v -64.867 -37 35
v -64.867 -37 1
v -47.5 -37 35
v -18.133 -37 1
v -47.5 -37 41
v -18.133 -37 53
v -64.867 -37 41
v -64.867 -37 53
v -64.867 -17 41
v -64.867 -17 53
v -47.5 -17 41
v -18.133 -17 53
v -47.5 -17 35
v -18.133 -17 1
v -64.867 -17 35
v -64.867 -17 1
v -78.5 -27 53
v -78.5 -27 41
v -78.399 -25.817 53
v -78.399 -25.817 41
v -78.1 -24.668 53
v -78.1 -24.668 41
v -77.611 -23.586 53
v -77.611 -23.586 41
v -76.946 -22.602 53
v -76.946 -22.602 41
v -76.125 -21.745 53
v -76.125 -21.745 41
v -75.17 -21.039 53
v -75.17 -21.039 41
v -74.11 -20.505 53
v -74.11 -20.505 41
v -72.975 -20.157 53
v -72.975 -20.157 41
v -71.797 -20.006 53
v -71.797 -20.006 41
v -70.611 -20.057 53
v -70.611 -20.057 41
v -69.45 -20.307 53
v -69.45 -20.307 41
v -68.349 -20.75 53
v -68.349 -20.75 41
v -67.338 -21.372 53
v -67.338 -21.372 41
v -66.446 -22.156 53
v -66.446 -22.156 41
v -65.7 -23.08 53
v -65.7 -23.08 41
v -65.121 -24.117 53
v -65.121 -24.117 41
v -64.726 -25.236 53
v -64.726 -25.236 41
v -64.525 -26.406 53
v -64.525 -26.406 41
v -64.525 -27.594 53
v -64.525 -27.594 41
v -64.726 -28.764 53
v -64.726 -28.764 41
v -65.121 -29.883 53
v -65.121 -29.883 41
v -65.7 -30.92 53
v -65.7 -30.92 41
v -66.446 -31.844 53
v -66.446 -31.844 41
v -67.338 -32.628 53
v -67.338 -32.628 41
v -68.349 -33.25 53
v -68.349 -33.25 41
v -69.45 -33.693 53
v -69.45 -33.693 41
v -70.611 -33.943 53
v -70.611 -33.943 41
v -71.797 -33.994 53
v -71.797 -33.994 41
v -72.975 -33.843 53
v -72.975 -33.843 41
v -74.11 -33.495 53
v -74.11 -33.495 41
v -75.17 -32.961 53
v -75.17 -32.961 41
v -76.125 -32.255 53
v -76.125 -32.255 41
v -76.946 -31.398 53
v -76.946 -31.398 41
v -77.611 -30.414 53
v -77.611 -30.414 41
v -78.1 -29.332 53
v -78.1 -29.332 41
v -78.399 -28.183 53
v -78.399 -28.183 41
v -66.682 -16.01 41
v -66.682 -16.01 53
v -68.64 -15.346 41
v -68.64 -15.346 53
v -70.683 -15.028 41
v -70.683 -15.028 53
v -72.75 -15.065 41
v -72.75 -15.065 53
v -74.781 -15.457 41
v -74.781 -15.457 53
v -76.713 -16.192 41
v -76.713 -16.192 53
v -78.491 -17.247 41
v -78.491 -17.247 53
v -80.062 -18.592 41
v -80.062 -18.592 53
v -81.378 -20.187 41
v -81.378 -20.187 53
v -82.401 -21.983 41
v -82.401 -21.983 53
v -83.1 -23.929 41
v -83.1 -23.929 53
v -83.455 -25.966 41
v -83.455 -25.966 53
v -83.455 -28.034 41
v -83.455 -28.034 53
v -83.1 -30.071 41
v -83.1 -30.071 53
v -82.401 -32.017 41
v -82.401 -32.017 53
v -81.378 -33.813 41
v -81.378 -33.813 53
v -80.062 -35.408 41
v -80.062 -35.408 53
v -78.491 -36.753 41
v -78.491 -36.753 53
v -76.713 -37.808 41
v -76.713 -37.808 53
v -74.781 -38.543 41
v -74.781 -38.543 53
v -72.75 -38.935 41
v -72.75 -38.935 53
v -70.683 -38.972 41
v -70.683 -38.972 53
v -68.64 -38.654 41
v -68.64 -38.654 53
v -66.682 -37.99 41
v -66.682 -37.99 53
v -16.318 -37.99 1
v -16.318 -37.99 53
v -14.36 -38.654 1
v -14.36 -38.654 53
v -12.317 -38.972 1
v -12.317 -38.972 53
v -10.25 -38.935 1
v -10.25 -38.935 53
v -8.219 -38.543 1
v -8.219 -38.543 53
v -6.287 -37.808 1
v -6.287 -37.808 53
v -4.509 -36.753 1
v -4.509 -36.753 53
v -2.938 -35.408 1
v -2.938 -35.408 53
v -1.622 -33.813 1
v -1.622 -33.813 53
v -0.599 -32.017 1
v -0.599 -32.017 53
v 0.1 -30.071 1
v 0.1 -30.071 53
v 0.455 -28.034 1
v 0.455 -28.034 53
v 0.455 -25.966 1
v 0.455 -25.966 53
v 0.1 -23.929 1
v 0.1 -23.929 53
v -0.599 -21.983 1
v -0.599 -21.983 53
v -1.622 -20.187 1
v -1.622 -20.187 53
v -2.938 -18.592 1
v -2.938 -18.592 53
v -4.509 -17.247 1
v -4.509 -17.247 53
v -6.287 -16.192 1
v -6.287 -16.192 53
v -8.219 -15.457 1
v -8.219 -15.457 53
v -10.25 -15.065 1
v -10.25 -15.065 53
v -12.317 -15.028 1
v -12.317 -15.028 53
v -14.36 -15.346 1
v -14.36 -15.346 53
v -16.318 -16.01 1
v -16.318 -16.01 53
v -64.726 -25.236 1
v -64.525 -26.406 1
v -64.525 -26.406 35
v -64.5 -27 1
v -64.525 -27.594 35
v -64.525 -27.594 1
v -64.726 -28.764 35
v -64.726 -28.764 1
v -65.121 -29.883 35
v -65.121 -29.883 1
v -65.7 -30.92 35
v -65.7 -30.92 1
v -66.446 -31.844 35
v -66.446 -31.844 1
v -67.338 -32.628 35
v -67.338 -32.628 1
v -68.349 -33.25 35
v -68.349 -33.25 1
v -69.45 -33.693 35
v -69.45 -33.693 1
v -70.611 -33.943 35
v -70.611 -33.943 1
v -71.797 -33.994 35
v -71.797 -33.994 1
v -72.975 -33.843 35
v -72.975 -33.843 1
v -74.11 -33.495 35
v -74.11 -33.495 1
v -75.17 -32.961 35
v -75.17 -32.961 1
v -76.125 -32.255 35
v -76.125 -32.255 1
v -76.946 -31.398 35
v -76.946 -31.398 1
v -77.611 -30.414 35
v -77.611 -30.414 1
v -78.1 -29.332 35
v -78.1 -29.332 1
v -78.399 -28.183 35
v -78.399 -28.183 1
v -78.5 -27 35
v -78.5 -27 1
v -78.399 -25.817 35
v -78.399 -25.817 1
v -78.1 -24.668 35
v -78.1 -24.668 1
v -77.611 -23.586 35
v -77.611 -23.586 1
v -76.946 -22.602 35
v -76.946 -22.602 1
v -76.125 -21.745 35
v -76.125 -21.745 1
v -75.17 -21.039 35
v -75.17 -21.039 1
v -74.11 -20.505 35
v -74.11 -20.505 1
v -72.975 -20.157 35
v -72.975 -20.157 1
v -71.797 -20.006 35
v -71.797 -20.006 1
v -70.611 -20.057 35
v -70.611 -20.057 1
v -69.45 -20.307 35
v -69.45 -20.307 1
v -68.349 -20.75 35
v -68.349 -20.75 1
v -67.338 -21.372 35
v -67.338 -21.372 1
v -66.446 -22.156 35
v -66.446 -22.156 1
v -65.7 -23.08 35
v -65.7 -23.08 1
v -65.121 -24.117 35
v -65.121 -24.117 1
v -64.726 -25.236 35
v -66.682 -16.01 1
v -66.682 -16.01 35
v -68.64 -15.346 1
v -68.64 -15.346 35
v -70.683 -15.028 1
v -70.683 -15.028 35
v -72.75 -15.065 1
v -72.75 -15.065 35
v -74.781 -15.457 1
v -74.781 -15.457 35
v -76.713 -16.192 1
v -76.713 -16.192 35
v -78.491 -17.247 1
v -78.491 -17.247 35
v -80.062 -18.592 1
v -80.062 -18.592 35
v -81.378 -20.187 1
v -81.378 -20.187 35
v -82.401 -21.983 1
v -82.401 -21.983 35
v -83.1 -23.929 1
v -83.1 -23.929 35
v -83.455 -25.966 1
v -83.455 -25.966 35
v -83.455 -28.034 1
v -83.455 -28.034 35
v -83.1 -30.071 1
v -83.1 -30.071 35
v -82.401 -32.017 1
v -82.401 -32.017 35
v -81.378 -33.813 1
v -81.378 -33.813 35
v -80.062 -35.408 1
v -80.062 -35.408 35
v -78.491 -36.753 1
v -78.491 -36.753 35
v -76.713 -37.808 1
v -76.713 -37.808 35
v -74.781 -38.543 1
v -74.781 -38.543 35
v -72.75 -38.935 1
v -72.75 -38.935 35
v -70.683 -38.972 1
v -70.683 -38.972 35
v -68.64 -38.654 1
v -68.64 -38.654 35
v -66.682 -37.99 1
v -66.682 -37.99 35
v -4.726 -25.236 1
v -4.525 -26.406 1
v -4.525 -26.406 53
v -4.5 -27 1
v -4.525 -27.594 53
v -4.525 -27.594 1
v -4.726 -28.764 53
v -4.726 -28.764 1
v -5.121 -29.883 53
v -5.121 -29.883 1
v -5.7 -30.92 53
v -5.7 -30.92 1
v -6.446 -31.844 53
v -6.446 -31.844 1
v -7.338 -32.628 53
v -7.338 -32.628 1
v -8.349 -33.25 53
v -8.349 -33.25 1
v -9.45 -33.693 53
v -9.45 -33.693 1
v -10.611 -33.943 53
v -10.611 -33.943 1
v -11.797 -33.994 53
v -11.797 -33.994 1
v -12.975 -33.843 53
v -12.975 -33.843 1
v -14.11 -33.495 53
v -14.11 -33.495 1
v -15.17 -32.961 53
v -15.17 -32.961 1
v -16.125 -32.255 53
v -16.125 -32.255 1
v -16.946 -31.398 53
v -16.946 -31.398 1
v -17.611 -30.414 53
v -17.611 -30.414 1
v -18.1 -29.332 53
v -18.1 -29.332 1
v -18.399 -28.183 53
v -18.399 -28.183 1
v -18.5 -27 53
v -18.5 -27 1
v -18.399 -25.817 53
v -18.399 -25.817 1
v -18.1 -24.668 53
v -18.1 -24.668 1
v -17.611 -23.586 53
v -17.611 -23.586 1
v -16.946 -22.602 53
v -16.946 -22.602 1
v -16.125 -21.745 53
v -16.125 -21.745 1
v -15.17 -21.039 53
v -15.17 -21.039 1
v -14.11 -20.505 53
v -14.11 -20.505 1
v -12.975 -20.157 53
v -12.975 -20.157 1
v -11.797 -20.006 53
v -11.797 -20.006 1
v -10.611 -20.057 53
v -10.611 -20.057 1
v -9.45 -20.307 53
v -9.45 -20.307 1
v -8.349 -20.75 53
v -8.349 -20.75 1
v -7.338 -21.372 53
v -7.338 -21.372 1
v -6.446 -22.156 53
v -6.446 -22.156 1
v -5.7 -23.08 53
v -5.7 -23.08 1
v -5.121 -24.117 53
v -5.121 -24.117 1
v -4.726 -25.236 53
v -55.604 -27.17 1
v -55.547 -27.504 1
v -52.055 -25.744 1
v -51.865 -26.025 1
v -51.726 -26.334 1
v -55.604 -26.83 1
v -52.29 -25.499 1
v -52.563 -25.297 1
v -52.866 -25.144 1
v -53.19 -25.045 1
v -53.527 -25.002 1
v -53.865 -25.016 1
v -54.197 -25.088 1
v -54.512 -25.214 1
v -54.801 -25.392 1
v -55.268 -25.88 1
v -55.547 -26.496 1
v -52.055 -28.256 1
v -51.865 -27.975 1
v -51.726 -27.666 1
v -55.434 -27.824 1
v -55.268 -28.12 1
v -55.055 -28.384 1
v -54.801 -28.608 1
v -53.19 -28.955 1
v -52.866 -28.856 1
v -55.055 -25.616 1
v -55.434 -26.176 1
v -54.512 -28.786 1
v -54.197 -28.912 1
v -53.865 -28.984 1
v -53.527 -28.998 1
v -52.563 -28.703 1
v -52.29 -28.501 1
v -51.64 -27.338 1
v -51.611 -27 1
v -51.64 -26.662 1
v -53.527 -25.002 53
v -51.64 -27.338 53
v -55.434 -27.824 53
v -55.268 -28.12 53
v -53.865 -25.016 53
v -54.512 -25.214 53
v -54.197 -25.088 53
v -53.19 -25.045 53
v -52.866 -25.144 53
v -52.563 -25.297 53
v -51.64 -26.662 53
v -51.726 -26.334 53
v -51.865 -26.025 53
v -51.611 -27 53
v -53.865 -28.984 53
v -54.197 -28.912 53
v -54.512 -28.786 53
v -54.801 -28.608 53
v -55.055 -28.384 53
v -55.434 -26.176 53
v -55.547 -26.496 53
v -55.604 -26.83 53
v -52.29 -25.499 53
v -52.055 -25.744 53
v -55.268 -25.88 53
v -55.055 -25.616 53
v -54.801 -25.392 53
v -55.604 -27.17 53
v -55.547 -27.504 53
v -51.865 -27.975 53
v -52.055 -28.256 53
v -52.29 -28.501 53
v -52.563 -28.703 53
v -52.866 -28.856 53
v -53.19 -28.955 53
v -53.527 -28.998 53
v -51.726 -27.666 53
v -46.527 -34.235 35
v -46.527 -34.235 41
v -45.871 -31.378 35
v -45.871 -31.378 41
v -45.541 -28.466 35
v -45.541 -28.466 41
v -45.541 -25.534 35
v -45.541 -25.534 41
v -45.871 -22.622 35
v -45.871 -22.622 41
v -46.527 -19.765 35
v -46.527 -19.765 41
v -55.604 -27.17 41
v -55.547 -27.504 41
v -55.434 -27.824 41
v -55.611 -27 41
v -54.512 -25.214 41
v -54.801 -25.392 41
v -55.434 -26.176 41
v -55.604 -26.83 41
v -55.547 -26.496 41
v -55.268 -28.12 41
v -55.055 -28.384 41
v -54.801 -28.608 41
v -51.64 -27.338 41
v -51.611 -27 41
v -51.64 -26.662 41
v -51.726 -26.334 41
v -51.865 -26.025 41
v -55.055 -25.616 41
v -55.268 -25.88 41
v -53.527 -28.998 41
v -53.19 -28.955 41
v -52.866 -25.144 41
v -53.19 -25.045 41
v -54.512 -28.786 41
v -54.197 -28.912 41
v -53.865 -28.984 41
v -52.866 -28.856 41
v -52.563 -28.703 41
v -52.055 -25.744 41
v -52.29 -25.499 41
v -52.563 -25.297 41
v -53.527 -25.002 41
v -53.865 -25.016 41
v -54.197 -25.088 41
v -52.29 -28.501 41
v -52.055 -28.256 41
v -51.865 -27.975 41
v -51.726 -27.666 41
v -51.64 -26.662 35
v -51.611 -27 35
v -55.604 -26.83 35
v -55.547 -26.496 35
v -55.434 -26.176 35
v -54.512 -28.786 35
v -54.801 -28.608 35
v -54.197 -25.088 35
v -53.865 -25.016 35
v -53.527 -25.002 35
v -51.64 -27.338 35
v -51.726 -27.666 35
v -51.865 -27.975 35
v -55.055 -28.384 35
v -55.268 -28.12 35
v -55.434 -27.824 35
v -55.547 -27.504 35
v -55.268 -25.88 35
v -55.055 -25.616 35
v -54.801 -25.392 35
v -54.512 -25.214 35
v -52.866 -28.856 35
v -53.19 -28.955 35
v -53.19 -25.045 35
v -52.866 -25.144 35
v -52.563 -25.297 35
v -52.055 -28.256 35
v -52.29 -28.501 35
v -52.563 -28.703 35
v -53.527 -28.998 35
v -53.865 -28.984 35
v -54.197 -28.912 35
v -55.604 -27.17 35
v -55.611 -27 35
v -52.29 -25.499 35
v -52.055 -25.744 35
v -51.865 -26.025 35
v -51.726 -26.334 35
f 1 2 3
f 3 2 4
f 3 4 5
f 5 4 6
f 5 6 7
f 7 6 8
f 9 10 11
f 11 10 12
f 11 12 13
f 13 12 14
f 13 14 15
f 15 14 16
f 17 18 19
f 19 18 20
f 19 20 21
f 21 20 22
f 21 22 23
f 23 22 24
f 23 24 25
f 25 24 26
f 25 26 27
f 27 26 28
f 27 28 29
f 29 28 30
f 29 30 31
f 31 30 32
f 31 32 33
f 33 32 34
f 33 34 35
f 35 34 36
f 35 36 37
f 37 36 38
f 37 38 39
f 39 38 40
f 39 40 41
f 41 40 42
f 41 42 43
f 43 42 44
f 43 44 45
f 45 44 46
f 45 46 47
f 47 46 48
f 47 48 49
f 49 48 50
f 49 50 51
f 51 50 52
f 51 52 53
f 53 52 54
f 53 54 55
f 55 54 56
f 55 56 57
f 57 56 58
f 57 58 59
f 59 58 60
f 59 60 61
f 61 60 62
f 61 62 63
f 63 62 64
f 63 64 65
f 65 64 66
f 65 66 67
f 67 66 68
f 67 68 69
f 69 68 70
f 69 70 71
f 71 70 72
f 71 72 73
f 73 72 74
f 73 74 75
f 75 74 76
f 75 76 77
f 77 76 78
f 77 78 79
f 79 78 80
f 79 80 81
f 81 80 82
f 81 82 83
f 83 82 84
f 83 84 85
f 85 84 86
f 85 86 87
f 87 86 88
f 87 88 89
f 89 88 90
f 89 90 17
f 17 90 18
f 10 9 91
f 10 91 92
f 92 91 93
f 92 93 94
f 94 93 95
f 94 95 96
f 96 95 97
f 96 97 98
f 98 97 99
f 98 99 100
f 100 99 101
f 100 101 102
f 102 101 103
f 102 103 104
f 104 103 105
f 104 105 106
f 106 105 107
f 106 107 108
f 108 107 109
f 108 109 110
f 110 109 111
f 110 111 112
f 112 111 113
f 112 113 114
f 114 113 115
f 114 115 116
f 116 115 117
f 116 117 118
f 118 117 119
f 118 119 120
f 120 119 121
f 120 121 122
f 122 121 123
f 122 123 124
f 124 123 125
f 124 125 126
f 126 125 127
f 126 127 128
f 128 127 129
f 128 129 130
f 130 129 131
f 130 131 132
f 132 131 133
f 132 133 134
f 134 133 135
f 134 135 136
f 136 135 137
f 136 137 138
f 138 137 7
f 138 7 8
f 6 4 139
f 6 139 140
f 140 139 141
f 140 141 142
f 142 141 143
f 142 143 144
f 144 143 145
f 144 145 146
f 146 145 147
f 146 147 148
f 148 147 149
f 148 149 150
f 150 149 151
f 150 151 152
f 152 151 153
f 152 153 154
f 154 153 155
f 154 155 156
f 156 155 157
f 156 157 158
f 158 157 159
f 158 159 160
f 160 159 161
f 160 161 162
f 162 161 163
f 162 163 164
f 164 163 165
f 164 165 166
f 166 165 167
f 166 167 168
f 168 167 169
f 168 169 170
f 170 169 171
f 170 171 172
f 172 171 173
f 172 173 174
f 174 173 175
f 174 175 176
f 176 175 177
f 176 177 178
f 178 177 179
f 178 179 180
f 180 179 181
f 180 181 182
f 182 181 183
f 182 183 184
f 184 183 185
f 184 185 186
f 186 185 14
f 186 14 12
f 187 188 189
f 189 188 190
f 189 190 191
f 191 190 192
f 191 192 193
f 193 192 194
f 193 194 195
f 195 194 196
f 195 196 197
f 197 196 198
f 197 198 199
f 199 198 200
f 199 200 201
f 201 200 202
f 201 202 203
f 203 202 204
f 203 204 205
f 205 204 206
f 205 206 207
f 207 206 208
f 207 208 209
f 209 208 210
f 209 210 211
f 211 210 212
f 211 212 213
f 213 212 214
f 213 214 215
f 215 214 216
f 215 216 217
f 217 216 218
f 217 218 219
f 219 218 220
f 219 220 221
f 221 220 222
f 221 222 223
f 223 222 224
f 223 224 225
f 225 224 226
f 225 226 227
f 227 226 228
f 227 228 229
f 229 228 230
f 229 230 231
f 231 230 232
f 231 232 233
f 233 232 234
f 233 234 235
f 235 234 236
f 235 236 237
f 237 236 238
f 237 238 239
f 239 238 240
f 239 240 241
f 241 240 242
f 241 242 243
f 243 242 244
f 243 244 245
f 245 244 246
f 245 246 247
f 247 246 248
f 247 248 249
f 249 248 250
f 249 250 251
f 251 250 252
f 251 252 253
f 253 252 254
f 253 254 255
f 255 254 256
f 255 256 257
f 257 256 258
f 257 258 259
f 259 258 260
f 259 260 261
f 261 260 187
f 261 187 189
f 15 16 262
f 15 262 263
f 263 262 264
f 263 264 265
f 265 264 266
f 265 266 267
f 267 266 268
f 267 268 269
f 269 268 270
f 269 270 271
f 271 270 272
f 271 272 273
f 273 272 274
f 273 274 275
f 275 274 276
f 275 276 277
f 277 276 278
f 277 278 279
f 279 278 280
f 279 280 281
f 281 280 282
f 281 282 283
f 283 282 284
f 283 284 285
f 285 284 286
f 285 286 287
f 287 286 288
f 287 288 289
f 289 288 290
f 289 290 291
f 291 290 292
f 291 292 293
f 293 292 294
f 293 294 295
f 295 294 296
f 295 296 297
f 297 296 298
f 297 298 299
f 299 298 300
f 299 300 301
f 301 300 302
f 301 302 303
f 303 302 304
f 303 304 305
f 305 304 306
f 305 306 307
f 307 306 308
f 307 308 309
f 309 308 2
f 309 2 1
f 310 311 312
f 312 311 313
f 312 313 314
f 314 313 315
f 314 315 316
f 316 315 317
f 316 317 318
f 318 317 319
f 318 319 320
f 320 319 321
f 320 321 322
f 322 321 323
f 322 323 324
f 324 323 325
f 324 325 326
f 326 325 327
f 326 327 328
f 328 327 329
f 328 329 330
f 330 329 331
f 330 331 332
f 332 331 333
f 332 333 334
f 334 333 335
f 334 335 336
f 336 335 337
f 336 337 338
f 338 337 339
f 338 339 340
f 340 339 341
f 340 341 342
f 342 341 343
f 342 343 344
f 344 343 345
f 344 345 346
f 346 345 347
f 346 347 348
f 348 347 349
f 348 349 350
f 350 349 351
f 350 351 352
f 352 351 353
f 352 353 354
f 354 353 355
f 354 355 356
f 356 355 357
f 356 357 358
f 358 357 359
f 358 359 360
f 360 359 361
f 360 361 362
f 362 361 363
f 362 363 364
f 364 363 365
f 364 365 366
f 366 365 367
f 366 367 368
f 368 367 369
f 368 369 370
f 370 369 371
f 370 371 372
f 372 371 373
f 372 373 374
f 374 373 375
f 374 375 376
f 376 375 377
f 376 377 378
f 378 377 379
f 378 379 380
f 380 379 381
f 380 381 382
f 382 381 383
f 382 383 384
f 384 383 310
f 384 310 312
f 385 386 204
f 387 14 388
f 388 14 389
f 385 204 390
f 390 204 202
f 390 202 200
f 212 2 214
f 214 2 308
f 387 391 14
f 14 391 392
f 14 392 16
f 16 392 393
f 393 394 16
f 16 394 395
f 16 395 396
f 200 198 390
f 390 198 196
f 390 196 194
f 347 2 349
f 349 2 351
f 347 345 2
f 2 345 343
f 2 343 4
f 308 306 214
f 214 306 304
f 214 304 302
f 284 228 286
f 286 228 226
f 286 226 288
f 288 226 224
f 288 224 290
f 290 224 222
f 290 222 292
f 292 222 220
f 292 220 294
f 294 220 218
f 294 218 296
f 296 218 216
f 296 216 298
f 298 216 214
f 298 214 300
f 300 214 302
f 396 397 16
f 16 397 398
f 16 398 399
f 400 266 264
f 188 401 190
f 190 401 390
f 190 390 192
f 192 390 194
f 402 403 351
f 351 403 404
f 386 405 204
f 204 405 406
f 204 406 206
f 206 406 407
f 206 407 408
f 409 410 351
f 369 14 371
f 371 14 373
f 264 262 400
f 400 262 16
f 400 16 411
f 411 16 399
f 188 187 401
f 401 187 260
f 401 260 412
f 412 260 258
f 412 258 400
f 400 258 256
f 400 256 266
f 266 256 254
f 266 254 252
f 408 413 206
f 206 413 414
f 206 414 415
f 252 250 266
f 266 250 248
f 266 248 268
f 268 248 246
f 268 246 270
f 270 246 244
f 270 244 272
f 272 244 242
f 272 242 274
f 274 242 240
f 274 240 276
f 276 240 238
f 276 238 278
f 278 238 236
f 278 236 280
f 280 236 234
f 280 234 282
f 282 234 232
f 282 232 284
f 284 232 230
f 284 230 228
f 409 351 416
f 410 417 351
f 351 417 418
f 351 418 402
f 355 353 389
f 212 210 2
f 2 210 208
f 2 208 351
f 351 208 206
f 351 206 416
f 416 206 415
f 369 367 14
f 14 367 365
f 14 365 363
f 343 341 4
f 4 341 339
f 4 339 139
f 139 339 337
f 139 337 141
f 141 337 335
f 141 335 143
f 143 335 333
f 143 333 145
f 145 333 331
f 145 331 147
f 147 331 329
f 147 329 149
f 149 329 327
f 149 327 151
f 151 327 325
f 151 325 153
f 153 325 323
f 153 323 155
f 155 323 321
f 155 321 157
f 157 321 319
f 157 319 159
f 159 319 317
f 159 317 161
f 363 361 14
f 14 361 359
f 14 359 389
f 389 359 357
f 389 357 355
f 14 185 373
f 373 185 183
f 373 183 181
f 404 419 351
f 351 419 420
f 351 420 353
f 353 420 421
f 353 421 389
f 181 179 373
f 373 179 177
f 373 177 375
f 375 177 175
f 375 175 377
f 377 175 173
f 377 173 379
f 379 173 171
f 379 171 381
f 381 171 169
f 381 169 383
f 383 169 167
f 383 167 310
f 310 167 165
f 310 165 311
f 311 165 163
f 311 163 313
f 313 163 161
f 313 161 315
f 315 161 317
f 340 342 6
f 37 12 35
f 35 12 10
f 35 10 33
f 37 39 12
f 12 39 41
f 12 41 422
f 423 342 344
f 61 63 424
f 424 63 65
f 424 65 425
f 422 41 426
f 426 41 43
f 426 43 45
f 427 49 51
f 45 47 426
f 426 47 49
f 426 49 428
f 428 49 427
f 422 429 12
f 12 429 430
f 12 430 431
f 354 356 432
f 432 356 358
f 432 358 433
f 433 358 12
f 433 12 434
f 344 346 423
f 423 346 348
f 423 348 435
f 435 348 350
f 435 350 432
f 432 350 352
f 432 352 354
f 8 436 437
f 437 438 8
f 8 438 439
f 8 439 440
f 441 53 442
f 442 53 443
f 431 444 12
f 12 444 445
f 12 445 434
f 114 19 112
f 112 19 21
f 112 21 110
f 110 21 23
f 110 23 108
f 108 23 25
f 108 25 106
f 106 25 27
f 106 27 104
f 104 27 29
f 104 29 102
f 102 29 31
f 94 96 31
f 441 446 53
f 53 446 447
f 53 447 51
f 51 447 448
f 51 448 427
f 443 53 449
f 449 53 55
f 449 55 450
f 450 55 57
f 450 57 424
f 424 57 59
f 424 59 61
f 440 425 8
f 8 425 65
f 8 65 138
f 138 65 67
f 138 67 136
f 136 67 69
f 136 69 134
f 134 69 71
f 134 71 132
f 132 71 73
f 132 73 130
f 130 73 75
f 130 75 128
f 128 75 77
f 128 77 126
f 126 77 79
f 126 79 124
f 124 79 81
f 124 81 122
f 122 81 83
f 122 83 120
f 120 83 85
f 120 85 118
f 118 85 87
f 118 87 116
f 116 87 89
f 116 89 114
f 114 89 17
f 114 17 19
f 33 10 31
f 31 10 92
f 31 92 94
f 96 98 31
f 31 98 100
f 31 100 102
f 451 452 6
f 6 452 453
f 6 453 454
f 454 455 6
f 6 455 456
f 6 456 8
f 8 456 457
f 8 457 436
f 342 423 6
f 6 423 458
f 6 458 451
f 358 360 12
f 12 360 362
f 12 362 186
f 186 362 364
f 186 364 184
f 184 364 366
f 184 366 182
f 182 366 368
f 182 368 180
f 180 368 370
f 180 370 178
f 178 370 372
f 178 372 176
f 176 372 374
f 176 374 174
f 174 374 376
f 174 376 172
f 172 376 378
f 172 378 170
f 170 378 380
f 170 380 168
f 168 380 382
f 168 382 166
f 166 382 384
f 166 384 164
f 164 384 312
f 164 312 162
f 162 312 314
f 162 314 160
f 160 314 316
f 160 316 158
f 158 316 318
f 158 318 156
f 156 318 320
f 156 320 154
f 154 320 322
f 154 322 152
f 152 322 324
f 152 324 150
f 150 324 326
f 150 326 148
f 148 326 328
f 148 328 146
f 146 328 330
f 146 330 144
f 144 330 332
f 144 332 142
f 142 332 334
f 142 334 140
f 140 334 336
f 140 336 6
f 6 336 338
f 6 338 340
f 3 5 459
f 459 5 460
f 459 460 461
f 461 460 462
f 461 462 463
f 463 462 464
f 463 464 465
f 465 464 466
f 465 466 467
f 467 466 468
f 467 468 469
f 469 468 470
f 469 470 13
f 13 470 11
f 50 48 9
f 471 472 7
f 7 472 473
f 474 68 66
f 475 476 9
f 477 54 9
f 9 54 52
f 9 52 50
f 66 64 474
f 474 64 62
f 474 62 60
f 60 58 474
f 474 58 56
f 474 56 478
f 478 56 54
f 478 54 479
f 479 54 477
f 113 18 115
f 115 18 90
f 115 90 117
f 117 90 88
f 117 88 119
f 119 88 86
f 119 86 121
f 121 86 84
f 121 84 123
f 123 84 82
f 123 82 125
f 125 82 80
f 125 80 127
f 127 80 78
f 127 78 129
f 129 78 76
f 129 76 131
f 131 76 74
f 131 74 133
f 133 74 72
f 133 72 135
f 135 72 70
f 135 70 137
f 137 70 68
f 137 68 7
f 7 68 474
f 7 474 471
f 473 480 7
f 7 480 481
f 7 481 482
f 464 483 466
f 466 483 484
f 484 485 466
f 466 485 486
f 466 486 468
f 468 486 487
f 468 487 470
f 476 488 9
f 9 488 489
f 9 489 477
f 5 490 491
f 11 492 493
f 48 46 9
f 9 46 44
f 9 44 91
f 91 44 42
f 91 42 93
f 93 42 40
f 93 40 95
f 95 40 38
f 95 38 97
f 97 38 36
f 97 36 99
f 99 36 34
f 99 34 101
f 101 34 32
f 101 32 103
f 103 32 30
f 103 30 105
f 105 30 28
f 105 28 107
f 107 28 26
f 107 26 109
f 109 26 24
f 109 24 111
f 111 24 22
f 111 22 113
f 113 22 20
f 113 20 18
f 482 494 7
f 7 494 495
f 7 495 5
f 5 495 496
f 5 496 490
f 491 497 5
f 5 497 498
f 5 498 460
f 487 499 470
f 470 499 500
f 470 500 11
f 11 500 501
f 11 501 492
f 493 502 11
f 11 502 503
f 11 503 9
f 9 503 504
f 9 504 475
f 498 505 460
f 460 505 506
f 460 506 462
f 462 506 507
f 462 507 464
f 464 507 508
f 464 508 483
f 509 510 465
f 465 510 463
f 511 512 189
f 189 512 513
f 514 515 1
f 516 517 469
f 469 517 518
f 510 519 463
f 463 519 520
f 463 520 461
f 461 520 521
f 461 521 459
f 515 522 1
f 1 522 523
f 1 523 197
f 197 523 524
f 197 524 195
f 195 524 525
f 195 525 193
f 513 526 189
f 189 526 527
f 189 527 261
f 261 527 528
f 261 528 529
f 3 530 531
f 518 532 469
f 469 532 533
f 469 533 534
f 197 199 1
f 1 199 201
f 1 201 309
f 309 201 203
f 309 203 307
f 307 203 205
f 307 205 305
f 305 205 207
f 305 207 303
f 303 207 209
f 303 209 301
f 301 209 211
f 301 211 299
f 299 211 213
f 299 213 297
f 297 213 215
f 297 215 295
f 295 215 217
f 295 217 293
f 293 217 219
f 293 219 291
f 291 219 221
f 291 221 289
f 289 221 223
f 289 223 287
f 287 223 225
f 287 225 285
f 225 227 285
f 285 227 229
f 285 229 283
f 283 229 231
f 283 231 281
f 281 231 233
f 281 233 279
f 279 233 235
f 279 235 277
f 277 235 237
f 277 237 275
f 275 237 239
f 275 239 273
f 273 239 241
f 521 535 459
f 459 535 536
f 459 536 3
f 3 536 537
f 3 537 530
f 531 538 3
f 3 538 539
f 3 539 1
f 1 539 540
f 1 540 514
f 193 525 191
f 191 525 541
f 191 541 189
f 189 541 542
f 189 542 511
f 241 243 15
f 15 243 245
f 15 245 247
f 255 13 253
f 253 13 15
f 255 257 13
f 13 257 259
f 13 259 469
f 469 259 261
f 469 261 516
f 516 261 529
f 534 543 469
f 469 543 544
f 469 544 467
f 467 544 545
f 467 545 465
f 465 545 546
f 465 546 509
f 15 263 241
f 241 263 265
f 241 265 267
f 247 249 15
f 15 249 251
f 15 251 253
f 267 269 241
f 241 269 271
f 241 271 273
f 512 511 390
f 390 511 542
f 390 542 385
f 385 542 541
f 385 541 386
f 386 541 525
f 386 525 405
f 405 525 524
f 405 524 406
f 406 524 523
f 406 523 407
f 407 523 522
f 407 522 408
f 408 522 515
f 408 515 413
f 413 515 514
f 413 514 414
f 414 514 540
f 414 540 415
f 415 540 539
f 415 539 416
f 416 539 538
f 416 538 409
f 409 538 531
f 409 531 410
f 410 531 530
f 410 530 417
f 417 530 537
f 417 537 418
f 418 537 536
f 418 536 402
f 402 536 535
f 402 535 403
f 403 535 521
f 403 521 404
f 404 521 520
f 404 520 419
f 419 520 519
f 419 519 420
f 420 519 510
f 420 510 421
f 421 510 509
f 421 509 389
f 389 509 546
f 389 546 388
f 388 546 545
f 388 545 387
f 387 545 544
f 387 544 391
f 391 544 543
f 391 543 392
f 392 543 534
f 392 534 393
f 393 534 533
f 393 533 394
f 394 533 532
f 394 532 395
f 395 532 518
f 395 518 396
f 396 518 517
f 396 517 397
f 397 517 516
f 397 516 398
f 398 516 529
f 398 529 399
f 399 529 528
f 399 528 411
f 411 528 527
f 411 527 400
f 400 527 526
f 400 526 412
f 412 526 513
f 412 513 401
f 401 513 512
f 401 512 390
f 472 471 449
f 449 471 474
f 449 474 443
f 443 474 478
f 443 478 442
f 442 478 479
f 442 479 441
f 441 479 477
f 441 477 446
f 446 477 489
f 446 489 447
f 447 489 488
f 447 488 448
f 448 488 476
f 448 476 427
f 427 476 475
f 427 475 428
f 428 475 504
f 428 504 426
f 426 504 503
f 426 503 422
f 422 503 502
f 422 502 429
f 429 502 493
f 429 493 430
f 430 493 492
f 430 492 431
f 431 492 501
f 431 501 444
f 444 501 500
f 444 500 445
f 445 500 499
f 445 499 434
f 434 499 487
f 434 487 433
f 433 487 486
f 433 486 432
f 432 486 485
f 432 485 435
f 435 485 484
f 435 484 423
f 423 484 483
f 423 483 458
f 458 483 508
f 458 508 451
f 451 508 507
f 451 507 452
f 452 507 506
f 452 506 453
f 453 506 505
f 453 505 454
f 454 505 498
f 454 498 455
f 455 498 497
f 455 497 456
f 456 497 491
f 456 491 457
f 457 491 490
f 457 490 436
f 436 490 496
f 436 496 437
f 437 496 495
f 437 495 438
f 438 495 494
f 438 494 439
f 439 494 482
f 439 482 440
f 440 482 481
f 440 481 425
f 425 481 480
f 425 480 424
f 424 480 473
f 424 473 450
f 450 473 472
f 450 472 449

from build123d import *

# Parameters (mm, degrees)
BOSS_EXTRUDE1_START     = 1
SKETCH1_R               = 7
BOSS_EXTRUDE1_DEPTH     = 52
CUT_EXTRUDE1_START      = -18
SKETCH2_R               = 26
CUT_EXTRUDE1_DEPTH      = 6
CUT_EXTRUDE2_DEPTH      = 99.230596048
CUT_EXTRUDE2_DEPTH_BACK = 99.230596048
SKETCH3_R               = 2


with BuildPart() as part:
    # Sketch1 → Boss-Extrude1 (new body)
    with BuildSketch(Plane.XY.offset(BOSS_EXTRUDE1_START)):
        with BuildLine():
            ThreePointArc((-64.866750419, -17), (-83.5, -27), (-64.866750419, -37))
            Line((-64.866750419, -37), (-18.133249581, -37))
            ThreePointArc((-18.133249581, -37), (0.5, -27), (-18.133249581, -17))
            Line((-18.133249581, -17), (-64.866750419, -17))
        make_face()
        with Locations(Location((-71.5, -27, 0), (0, 0, 180))):
            Circle(SKETCH1_R, mode=Mode.SUBTRACT)
        with Locations(Location((-11.5, -27, 0), (0, 0, 180))):
            Circle(SKETCH1_R, mode=Mode.SUBTRACT)
    extrude(amount=BOSS_EXTRUDE1_DEPTH)

    # Sketch2 → Cut-Extrude1 (cut)
    with BuildSketch(Plane.XY.offset(53).offset(CUT_EXTRUDE1_START)):
        with Locations((-71.5, -27)):
            Circle(SKETCH2_R)
    extrude(amount=CUT_EXTRUDE1_DEPTH, mode=Mode.SUBTRACT)

    # Sketch3 → Cut-Extrude2 (cut, two sides: drawn at the far end of the back side and taken through both)
    with BuildSketch(Plane.XY.offset(35).offset(-CUT_EXTRUDE2_DEPTH_BACK)):
        with Locations((-53.61145618, -27)):
            Circle(SKETCH3_R)
    extrude(amount=CUT_EXTRUDE2_DEPTH + CUT_EXTRUDE2_DEPTH_BACK, mode=Mode.SUBTRACT)


solid = part.part
